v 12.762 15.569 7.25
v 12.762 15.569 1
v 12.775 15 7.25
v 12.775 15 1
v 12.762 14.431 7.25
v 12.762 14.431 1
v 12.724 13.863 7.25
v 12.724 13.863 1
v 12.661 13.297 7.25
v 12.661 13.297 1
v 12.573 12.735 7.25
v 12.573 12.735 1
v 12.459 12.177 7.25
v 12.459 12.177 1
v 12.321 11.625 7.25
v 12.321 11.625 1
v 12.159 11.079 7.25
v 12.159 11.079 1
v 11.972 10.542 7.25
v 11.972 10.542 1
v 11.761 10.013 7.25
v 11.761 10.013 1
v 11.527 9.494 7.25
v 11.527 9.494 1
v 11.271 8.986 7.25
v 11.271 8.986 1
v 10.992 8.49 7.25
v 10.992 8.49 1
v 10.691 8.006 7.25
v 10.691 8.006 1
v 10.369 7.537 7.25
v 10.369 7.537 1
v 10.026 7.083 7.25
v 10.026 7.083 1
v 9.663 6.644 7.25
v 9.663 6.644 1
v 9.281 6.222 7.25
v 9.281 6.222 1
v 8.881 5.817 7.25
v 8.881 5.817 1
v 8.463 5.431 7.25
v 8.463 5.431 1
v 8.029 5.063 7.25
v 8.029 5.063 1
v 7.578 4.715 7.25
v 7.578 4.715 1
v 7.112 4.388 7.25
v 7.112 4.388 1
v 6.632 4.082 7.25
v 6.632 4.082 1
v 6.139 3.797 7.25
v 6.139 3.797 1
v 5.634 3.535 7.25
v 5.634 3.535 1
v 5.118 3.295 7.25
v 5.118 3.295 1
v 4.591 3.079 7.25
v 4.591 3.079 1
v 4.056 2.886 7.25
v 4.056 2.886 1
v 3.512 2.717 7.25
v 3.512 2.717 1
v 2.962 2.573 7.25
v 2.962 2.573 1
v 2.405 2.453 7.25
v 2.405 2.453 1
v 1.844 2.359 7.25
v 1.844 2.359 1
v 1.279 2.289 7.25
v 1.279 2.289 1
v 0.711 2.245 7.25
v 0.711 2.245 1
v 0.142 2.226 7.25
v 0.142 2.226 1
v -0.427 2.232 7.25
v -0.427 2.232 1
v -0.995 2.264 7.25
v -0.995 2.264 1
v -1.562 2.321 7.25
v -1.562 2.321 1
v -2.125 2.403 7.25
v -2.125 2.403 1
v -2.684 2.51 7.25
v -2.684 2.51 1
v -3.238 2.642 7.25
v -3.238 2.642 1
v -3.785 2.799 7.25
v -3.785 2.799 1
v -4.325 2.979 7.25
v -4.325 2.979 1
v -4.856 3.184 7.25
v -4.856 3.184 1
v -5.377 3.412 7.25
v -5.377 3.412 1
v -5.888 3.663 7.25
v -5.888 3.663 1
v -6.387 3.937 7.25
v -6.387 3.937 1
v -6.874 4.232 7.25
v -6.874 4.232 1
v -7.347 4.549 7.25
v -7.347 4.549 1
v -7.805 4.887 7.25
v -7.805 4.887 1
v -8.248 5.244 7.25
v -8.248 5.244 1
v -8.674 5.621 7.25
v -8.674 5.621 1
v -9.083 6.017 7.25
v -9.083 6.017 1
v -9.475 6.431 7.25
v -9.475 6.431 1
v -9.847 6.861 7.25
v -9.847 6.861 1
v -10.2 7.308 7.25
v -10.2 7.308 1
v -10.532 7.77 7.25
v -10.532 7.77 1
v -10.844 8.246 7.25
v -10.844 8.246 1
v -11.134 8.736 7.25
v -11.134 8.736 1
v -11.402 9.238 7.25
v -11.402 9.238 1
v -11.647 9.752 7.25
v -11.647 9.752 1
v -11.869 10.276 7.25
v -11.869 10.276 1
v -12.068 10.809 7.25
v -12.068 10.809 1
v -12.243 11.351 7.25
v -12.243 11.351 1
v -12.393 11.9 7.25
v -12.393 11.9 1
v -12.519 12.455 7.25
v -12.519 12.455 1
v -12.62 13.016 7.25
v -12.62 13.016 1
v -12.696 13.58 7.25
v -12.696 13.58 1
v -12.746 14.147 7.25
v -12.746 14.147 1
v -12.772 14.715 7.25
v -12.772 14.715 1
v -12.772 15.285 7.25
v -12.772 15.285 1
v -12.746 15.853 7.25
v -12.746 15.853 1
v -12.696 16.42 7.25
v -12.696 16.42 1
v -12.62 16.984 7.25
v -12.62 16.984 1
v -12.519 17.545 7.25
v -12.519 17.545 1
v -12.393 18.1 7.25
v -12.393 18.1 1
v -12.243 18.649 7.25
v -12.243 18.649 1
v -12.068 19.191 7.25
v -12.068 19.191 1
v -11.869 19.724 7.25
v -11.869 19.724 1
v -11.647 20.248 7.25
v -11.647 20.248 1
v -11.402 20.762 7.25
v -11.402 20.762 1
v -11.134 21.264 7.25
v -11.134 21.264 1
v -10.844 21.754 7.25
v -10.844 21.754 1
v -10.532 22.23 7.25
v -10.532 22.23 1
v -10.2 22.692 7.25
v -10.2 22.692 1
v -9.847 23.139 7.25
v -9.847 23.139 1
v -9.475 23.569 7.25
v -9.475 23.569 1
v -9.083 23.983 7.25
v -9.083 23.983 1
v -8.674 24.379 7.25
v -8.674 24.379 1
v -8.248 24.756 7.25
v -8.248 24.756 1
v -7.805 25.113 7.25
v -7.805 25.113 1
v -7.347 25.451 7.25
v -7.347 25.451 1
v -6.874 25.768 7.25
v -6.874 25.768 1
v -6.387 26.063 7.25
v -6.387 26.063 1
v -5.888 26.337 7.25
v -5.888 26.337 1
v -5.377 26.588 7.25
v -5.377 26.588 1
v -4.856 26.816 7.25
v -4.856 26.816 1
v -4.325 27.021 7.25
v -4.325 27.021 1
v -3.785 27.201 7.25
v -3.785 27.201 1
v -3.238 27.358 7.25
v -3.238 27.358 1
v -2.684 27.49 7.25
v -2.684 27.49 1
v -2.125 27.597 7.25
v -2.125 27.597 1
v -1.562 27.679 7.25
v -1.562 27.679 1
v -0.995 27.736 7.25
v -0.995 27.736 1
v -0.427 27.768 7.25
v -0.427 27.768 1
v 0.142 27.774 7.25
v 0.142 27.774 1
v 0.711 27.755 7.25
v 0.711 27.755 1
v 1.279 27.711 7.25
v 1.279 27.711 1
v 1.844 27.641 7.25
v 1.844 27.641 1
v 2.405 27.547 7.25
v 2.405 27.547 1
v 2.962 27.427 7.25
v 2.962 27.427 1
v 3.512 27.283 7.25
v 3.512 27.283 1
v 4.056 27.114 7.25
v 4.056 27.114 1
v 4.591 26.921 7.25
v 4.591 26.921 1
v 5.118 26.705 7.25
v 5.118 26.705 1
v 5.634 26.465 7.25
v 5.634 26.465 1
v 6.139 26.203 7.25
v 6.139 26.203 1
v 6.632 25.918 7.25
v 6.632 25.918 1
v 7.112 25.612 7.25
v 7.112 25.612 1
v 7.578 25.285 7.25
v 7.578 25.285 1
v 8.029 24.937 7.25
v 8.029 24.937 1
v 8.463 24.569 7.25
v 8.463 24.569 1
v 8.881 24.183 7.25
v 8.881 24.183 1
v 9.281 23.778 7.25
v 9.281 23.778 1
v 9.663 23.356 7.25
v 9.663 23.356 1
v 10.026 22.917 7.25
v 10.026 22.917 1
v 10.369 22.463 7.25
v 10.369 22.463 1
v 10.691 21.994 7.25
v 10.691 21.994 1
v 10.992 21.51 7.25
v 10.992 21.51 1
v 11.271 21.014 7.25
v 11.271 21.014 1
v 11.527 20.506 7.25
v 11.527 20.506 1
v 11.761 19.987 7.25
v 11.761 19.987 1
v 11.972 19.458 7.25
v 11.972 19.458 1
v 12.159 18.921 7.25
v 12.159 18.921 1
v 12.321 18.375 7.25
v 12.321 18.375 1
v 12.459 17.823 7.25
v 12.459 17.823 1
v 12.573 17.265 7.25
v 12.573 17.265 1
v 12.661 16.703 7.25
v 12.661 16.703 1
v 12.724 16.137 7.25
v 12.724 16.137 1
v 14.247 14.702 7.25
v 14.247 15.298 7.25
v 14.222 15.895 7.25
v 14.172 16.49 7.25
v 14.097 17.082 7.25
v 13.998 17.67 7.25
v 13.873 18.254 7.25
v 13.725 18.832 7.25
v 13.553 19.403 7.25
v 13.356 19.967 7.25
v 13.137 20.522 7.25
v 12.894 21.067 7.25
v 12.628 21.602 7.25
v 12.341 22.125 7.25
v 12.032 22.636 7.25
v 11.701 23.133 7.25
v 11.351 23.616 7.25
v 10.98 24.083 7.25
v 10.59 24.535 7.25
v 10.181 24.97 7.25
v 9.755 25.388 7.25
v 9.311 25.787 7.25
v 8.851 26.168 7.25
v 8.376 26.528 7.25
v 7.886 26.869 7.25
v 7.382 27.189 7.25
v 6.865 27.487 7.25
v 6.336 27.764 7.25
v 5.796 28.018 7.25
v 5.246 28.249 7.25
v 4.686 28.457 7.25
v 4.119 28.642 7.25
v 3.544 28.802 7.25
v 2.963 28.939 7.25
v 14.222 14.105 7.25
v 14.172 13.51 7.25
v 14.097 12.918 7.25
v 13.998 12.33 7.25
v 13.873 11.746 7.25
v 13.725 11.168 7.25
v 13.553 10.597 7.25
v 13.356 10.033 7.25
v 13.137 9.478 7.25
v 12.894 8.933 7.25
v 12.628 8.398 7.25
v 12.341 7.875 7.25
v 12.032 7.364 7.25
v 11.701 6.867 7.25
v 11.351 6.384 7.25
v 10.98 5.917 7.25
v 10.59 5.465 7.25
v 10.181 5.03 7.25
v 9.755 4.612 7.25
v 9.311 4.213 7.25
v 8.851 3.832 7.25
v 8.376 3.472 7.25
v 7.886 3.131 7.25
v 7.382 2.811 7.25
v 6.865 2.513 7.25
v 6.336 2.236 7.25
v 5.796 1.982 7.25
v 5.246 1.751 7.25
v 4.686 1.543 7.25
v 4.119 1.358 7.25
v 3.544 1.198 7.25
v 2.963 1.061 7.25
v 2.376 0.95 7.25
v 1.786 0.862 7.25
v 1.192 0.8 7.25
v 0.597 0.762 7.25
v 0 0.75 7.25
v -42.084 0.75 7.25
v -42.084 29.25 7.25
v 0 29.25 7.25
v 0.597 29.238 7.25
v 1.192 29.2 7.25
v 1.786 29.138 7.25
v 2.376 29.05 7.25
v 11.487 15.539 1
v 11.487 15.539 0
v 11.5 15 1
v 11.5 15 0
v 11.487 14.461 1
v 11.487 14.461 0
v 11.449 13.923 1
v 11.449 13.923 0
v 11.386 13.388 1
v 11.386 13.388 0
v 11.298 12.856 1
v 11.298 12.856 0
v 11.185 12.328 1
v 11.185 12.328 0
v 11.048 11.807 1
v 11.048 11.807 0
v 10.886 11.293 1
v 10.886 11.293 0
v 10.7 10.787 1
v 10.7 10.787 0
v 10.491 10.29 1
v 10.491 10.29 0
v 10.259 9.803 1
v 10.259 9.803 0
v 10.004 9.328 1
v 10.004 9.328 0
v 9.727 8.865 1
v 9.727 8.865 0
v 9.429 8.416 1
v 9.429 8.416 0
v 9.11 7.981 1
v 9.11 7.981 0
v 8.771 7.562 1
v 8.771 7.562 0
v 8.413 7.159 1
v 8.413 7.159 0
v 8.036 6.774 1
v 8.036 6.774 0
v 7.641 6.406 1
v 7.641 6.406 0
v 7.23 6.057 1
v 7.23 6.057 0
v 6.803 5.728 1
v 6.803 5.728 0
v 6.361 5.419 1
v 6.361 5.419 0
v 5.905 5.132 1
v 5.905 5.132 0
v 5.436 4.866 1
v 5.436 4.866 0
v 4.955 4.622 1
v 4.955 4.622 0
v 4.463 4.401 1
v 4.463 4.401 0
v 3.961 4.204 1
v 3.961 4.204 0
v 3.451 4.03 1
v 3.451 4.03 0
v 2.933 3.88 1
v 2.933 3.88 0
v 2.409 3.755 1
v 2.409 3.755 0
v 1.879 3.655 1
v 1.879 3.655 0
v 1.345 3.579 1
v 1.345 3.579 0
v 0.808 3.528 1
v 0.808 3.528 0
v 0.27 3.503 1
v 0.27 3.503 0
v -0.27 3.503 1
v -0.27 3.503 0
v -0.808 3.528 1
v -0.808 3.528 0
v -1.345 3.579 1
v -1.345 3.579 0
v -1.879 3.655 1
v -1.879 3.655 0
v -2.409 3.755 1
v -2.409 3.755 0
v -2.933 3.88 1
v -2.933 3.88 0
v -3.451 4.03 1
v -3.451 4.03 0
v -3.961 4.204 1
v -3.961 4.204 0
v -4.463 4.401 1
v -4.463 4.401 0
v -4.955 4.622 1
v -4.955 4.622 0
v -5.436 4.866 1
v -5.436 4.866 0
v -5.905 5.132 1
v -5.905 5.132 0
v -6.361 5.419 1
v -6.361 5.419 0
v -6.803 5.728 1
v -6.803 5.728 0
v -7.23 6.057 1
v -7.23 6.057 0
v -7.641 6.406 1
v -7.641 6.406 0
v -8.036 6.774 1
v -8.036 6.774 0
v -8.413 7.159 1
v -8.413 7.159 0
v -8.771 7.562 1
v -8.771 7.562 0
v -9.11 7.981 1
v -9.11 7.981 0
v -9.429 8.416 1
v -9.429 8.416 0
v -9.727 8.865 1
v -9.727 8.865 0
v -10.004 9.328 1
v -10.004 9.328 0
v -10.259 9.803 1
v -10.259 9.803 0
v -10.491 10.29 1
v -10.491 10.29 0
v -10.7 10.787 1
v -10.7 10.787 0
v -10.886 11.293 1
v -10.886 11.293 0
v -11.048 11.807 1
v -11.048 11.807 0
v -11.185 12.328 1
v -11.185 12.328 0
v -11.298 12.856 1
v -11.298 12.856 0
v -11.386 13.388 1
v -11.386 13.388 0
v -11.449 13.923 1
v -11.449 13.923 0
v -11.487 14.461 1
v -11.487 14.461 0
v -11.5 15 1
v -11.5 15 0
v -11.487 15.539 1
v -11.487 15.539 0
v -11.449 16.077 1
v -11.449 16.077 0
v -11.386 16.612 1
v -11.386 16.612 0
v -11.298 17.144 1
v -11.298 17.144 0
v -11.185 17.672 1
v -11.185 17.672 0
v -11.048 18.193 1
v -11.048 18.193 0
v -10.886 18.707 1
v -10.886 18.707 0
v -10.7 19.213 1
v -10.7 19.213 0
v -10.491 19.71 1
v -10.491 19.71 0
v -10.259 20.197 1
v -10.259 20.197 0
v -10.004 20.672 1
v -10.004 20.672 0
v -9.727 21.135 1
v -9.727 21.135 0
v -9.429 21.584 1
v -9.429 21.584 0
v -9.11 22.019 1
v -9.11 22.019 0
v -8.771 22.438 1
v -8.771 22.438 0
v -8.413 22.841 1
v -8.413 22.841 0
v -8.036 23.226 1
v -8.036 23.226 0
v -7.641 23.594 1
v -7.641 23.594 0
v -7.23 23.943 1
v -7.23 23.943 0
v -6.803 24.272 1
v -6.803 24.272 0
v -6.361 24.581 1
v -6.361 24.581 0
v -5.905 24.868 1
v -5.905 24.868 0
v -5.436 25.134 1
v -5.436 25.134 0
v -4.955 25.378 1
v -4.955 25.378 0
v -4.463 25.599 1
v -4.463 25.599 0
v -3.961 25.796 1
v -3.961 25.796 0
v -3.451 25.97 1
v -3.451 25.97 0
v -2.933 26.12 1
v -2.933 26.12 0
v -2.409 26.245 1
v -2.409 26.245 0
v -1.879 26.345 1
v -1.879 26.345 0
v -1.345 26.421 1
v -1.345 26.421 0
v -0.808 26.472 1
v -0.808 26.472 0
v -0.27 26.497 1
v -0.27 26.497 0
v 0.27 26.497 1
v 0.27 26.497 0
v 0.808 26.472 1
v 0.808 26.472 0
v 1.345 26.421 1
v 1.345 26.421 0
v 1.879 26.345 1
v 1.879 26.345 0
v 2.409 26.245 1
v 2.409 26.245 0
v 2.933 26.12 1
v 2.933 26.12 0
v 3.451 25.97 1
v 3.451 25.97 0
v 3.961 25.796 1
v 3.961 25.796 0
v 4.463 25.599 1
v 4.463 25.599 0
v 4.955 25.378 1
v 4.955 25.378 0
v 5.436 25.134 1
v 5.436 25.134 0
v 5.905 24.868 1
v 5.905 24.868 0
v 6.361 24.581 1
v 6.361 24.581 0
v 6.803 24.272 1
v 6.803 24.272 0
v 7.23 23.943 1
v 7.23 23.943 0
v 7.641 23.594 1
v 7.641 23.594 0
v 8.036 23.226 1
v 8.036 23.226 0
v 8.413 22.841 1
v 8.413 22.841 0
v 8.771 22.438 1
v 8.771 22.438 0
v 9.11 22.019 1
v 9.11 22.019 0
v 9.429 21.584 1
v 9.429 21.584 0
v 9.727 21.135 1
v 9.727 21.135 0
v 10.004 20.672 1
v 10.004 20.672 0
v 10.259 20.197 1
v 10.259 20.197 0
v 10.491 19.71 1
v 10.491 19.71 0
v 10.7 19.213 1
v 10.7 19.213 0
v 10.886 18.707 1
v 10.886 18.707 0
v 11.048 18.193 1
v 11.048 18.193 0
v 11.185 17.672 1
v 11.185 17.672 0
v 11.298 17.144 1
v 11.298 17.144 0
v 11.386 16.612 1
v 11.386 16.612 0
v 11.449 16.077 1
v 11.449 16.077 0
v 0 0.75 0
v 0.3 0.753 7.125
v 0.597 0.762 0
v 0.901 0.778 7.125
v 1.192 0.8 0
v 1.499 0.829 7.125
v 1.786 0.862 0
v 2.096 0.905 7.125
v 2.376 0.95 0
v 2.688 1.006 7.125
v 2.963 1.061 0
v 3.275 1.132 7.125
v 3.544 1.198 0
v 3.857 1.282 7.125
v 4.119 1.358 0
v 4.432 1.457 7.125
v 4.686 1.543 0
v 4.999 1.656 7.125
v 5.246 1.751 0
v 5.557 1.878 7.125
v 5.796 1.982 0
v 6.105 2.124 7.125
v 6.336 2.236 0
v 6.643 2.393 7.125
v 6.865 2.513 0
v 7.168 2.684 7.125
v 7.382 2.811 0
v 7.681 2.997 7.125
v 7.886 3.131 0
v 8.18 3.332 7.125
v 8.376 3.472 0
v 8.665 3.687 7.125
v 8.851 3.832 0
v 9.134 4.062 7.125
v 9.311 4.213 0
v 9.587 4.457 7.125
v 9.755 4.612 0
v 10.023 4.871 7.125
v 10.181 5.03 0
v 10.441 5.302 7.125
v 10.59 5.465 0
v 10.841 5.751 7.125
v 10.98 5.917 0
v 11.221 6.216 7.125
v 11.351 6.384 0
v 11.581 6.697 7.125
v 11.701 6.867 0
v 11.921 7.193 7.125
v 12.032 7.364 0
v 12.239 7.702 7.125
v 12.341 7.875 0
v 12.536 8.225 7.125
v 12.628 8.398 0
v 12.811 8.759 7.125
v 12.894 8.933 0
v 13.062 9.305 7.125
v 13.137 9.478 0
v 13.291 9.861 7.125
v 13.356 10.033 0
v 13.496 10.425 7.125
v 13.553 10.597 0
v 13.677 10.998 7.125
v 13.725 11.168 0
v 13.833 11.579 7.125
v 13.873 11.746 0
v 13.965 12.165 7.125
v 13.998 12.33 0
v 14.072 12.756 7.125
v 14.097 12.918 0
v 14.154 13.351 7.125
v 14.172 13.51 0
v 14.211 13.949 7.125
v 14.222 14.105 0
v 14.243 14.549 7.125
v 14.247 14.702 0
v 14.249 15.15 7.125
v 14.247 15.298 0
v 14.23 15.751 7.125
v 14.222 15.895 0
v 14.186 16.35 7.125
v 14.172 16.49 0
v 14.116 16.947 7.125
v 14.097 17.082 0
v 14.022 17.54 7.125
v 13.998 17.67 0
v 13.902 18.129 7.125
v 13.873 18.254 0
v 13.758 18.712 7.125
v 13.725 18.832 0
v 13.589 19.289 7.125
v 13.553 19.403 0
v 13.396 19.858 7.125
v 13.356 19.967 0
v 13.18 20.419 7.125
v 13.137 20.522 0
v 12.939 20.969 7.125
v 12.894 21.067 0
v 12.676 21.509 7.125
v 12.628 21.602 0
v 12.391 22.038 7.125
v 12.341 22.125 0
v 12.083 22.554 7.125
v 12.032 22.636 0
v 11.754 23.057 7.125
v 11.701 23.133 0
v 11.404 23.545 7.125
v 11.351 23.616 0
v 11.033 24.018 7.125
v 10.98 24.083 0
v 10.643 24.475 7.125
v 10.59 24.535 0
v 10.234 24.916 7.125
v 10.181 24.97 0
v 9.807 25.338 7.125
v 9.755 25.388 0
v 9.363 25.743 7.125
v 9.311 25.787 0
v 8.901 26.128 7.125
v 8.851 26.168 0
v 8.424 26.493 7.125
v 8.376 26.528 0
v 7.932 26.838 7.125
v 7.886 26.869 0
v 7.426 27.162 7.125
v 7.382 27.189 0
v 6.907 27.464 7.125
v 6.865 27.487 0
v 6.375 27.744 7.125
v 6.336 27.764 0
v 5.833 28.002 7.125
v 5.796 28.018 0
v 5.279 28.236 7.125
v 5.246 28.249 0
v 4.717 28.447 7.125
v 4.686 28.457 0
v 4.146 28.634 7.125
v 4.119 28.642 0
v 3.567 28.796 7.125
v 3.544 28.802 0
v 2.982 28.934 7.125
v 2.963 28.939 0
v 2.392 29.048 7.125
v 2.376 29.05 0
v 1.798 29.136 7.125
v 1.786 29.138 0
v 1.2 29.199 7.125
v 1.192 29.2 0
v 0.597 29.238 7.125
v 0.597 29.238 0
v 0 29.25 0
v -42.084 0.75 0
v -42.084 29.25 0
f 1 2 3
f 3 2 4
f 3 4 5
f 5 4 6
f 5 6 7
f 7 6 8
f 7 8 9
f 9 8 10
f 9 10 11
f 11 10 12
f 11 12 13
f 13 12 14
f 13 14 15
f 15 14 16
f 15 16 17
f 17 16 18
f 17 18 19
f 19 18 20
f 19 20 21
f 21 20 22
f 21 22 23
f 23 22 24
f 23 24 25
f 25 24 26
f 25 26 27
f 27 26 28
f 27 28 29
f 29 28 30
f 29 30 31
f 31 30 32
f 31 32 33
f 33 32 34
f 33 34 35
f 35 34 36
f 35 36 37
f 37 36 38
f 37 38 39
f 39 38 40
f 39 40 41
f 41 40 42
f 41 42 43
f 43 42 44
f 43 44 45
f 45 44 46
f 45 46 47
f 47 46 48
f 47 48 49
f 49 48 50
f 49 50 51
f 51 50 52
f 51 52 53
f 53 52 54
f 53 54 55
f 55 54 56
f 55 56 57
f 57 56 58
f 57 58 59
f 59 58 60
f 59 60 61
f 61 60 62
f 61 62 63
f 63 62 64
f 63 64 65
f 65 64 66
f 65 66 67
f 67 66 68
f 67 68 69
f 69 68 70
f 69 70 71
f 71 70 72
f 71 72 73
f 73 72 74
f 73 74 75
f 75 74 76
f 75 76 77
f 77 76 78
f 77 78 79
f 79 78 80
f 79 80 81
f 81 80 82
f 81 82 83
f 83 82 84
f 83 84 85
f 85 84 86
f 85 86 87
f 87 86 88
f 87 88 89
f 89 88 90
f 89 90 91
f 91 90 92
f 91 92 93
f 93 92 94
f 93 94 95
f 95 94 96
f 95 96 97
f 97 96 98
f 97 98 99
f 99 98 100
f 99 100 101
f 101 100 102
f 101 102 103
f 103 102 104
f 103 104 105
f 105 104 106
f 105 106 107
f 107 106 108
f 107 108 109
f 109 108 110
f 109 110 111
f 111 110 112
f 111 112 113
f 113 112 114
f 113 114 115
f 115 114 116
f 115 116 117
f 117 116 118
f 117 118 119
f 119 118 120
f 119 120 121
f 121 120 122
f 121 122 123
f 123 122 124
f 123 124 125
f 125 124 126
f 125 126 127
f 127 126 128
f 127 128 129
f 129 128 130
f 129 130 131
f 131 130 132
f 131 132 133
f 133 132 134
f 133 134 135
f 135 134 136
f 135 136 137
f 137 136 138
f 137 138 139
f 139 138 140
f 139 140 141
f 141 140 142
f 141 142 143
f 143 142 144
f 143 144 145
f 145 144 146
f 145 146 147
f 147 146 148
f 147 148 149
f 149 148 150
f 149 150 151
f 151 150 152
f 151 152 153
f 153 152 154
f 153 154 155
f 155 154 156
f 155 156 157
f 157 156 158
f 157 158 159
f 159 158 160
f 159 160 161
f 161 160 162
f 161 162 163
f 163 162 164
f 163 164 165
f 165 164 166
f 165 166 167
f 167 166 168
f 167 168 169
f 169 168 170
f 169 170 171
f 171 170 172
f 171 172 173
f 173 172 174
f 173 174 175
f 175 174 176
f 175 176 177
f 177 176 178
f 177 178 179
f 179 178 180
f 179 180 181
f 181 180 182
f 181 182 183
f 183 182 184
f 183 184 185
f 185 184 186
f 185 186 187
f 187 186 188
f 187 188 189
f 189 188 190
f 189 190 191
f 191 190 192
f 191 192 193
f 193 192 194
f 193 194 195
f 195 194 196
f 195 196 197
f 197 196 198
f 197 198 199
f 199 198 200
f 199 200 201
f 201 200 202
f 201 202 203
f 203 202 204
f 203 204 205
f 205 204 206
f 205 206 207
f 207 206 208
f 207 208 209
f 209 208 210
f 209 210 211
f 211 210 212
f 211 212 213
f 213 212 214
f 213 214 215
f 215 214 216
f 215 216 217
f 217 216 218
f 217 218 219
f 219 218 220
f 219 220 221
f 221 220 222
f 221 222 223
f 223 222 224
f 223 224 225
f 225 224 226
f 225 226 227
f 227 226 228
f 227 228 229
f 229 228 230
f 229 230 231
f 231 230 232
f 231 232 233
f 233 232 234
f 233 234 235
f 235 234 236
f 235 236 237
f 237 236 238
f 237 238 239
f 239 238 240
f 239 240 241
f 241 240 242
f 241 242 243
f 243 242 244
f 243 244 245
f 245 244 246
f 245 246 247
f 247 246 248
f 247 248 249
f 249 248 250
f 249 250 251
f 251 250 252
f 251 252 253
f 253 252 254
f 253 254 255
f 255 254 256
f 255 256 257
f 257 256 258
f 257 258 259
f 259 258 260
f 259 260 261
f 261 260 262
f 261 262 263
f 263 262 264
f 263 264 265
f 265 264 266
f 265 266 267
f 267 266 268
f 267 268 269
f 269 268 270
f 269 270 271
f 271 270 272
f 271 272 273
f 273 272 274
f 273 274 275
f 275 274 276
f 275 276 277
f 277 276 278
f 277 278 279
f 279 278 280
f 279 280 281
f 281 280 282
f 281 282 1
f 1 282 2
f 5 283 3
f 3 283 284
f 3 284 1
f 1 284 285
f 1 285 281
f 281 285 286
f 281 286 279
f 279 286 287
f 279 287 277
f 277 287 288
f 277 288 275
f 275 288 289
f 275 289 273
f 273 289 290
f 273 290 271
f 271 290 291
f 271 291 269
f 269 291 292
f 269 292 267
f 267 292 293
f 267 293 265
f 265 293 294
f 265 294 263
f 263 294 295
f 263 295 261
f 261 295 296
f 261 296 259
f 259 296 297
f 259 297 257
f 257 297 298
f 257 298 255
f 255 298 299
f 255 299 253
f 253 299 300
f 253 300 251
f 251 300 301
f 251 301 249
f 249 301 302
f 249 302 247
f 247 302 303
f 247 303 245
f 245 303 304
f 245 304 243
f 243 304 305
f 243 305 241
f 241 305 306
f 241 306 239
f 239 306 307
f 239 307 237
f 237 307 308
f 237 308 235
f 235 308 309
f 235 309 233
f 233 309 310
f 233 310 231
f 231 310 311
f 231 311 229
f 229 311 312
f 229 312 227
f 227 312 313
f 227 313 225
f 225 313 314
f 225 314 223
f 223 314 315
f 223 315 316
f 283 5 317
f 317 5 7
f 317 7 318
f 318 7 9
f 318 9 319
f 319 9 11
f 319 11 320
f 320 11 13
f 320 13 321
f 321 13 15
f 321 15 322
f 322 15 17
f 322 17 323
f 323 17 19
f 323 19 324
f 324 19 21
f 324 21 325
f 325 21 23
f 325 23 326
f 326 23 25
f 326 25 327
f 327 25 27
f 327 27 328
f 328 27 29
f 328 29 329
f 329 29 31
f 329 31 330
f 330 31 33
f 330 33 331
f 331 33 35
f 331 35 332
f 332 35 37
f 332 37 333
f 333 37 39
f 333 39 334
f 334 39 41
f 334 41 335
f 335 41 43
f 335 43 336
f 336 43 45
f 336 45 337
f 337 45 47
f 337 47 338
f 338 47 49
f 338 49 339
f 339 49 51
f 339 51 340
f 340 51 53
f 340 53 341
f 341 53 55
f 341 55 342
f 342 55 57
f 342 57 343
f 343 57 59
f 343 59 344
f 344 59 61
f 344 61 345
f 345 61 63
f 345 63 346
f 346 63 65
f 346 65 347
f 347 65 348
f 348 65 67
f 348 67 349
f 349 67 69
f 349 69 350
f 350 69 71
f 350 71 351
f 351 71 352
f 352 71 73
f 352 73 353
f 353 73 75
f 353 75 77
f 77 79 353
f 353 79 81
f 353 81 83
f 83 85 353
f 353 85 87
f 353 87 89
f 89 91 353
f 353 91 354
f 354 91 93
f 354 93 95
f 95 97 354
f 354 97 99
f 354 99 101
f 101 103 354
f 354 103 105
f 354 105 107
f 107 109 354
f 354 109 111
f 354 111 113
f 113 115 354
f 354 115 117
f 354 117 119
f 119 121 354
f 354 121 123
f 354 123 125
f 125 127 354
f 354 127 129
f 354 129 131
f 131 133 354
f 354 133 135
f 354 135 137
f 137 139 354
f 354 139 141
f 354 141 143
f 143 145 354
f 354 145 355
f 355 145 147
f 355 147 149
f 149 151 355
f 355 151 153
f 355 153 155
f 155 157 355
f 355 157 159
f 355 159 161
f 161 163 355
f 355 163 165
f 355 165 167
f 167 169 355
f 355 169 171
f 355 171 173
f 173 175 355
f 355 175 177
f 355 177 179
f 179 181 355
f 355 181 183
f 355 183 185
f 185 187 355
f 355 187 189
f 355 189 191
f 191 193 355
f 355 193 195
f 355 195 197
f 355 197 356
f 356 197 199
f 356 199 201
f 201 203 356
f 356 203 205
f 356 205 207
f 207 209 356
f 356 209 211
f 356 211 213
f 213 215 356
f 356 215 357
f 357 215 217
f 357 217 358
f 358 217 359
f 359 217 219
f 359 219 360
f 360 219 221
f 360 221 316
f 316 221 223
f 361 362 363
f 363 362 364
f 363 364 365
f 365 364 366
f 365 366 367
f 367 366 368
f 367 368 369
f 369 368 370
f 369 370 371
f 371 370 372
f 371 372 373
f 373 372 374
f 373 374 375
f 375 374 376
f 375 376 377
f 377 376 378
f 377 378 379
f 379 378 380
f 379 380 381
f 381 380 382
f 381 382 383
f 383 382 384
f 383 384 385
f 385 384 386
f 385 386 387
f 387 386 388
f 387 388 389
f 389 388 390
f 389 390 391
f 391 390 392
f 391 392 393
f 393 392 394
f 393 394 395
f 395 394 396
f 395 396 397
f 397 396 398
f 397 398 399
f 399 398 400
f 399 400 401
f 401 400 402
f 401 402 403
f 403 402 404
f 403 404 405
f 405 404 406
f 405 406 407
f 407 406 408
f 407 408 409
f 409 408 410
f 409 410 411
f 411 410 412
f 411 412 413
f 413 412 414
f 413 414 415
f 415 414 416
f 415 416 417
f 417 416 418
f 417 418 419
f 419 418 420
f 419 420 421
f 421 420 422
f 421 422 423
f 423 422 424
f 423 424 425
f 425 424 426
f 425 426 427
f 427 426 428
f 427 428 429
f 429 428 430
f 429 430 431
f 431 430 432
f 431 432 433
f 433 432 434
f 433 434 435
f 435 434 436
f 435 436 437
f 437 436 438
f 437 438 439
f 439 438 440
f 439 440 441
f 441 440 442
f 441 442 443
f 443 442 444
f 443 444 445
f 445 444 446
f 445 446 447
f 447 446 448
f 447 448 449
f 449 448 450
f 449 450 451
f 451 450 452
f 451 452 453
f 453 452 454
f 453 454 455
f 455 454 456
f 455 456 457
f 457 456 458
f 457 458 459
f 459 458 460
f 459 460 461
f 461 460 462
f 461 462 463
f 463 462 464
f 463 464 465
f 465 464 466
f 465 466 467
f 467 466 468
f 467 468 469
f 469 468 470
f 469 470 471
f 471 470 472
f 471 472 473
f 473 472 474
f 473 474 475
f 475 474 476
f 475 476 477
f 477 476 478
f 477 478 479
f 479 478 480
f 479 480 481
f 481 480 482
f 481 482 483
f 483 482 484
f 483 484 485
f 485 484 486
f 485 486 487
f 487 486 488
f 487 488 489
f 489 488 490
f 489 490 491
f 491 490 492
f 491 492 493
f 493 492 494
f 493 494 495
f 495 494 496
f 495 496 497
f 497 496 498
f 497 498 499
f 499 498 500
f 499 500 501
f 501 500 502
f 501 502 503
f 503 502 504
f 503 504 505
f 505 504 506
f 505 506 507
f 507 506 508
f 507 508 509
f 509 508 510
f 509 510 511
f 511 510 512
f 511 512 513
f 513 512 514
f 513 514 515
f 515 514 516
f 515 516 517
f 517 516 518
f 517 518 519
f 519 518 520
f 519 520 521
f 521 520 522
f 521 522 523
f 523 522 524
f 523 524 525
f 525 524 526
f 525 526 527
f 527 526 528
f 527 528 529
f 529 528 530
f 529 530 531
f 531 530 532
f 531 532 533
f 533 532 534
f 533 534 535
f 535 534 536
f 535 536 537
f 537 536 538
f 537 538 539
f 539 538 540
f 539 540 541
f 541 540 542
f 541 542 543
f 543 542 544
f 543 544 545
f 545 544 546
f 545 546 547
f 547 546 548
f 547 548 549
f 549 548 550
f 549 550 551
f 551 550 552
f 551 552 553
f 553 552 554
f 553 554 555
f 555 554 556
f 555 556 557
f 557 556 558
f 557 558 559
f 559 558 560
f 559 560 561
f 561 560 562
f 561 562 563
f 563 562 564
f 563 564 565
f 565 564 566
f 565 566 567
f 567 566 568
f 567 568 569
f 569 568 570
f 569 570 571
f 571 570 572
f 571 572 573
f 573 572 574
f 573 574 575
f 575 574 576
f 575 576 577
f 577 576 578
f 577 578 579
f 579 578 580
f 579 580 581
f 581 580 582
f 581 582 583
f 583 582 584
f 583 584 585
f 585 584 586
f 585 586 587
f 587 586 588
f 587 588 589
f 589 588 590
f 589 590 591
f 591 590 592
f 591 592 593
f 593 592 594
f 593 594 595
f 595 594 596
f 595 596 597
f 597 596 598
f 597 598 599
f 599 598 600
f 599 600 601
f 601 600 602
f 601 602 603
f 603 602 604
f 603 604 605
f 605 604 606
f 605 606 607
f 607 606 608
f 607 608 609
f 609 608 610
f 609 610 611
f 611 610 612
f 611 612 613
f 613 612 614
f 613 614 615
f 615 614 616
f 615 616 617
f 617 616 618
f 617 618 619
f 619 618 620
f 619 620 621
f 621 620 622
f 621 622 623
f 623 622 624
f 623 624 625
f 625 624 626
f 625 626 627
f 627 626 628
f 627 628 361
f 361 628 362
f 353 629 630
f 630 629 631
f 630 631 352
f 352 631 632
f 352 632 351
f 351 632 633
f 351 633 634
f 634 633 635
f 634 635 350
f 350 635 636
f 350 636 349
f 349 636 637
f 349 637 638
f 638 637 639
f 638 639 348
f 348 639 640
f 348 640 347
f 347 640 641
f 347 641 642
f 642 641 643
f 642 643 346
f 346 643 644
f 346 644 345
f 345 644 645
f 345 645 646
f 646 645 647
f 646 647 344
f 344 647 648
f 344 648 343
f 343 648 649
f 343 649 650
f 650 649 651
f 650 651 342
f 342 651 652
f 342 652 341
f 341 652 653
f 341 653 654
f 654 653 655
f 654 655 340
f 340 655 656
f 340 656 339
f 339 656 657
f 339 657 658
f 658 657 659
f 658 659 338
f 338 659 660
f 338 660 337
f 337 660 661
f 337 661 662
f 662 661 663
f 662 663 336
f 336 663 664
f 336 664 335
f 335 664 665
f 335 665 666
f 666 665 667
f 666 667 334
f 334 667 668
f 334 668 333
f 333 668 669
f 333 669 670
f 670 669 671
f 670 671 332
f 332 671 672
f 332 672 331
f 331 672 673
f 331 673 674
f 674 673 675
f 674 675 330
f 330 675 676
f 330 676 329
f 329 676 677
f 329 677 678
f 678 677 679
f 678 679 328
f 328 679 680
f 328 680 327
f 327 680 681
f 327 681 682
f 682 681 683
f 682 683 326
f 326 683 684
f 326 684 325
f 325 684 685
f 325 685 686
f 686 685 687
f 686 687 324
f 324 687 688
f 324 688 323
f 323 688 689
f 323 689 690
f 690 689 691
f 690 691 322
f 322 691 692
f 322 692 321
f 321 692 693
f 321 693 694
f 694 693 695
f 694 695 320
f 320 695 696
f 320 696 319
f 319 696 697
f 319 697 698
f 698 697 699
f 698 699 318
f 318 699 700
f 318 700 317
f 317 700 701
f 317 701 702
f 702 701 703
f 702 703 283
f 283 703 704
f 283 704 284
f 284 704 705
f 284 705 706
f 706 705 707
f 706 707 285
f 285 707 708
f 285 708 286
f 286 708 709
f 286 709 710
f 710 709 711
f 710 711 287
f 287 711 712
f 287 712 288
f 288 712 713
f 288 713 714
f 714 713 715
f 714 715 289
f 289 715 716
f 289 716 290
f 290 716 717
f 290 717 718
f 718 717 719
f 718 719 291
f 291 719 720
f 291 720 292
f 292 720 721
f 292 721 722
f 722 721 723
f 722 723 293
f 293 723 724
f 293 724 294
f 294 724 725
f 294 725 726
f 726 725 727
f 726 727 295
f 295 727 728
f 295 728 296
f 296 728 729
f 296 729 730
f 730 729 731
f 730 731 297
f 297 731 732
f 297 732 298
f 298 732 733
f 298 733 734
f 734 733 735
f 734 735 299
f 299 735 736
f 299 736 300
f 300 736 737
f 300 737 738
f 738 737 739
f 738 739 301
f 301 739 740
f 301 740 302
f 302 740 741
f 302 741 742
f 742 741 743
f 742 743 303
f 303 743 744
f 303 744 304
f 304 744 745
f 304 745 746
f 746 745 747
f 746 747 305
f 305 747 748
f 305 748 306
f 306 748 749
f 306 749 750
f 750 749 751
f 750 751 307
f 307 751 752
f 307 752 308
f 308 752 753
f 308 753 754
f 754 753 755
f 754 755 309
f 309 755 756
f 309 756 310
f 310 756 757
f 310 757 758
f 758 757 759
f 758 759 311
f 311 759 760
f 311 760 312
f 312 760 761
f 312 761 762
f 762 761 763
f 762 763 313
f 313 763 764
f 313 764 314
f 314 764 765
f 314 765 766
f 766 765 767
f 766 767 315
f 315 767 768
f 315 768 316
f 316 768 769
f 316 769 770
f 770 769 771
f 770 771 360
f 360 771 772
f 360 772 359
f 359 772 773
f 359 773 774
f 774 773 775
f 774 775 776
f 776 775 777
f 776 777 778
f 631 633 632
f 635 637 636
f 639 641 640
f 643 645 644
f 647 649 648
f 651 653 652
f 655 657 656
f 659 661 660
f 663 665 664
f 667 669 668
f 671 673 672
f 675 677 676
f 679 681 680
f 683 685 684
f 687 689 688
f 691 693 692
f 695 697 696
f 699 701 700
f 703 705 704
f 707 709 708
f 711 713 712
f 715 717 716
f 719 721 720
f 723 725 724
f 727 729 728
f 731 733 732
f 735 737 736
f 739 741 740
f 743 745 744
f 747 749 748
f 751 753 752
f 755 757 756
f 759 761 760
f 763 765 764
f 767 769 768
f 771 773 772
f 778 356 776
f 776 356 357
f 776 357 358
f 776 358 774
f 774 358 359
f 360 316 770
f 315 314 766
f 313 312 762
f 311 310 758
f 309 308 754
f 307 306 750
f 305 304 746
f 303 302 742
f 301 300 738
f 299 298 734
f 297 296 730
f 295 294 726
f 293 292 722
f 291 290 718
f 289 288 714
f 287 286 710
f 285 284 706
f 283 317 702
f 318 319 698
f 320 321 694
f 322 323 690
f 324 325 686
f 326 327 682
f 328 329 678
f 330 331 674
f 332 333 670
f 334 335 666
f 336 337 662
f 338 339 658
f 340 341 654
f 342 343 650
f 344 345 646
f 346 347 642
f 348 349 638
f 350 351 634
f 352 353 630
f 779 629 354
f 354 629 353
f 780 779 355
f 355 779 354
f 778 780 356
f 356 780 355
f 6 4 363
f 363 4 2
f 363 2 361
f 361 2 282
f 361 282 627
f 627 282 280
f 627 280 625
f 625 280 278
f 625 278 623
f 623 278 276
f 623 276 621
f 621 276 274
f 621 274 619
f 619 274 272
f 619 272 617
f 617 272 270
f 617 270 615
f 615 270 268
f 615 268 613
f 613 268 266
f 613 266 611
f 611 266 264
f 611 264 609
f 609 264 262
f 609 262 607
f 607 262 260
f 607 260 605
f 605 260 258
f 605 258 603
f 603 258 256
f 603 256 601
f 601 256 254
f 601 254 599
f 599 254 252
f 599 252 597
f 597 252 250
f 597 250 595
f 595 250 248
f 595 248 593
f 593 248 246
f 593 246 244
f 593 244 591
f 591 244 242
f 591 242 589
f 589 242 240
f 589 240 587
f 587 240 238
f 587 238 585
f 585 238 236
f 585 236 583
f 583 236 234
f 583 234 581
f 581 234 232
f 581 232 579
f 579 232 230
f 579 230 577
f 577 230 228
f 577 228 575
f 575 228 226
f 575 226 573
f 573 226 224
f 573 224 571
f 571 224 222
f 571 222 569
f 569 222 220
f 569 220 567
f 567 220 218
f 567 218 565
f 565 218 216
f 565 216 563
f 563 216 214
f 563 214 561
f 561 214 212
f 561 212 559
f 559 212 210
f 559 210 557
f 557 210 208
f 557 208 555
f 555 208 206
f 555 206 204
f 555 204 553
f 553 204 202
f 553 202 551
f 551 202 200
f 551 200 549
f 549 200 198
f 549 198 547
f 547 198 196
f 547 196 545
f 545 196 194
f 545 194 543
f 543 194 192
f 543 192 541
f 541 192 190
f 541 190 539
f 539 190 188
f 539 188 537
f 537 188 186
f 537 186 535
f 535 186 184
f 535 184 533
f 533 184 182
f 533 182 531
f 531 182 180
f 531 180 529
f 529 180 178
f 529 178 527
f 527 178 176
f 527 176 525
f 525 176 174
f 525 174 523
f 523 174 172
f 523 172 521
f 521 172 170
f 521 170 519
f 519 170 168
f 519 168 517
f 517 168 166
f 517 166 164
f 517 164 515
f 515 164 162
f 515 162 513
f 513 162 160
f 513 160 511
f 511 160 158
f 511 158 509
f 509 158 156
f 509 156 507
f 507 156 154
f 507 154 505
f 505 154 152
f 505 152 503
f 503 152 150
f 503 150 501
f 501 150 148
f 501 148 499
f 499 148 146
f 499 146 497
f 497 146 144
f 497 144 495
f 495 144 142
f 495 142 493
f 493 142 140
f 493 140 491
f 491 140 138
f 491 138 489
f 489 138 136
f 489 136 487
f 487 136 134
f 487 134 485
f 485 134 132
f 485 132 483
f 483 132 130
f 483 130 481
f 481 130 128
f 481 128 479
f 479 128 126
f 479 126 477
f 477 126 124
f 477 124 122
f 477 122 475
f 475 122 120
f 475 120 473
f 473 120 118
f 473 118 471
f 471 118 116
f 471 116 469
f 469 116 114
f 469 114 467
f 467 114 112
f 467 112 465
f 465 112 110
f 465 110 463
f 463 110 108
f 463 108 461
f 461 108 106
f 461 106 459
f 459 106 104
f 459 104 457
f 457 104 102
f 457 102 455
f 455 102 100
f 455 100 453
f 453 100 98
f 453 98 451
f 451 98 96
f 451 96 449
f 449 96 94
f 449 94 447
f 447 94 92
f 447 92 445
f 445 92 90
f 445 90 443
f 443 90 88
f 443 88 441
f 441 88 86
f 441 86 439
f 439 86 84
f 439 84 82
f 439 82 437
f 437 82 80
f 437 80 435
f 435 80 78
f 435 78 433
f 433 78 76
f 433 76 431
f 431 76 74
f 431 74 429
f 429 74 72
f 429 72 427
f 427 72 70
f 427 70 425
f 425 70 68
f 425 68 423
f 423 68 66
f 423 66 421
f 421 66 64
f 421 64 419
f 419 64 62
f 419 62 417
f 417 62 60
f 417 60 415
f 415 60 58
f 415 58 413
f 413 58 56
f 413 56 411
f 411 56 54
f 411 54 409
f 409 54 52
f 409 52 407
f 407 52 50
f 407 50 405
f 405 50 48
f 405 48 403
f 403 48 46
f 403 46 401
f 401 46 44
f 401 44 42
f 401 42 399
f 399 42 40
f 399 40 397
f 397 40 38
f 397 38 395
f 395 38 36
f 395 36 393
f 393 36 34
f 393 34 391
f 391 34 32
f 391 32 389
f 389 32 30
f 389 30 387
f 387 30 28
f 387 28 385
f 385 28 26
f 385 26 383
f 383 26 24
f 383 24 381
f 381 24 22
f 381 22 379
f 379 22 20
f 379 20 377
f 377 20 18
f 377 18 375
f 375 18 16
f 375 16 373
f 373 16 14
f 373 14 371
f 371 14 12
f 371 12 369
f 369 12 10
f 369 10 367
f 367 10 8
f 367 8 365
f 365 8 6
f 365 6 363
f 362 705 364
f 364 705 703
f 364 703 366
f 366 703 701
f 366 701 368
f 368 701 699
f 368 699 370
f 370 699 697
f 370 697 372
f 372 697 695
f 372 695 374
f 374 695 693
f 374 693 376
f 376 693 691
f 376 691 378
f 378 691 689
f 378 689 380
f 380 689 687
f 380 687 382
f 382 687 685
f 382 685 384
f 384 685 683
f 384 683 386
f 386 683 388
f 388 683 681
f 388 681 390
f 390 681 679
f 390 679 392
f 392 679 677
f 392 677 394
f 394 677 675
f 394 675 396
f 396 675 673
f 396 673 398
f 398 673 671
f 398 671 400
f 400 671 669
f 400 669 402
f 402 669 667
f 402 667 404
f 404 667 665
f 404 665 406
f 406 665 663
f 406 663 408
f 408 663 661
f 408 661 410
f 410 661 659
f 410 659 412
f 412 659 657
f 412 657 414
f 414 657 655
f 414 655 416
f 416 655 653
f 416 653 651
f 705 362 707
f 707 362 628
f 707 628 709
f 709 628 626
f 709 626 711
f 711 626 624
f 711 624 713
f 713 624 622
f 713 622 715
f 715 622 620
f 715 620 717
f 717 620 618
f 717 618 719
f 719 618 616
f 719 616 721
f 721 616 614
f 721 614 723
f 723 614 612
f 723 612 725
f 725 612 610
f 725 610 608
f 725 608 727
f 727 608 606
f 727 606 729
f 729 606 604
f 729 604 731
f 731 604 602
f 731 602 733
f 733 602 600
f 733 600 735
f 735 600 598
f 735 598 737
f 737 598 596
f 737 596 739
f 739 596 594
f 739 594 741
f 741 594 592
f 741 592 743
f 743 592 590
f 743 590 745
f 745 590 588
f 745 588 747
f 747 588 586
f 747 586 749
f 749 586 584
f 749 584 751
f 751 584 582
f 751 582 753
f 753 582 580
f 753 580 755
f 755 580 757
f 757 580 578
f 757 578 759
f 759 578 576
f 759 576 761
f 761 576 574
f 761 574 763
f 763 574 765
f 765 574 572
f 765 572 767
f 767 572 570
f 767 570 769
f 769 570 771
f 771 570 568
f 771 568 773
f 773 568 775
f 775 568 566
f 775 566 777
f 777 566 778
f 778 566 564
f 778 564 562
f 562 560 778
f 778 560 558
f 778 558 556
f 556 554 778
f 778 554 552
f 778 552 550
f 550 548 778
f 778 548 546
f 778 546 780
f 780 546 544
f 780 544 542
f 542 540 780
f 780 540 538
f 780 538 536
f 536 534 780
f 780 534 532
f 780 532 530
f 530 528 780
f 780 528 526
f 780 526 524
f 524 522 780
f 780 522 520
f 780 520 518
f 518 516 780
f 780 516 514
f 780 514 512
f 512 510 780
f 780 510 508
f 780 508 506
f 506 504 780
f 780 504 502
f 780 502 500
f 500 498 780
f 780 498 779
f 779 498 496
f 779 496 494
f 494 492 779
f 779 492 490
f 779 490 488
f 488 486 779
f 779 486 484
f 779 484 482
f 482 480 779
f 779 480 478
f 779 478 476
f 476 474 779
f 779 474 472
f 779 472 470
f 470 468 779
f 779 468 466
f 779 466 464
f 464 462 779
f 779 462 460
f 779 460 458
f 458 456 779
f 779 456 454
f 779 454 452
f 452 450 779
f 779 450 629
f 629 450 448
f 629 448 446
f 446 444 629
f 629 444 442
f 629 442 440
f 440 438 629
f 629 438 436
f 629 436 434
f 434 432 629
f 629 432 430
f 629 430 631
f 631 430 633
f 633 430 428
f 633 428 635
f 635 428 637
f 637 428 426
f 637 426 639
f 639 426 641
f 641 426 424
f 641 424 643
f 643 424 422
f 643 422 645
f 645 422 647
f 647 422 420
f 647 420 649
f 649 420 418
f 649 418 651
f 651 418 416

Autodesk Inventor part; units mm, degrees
ref_plane "YZ Plane" through (0, 0, 0) normal (1, 0, 0) x (0, 1, 0)
ref_plane "XZ Plane" through (0, 0, 0) normal (0, 1, 0) x (-1, 0, 0)
ref_plane "XY Plane" through (0, 0, 0) normal (0, 0, 1) x (1, 0, 0)
ref_plane "Work Plane1" through (0, 0, 0) normal (0, 0, 1) x (1, 0, 0)
sketch "Sketch1" plane through (0, 0, 0) normal (0, 0, 1) x (1, 0, 0)
  arc A0 (-18.155, 30) -> (-18.155, 0) centre (0, 15) ccw construction
  line L0 (-18.155, 0) -> (-3.4871, 0) construction
  line L1 (-18.155, 30) -> (-3.4871, 30) construction
  circle A1 centre (0, 15) radius 15.4 construction
  arc A2 (-6.5238, 29.25) -> (-6.5238, 0.75) centre (0, 15) ccw construction
  line L2 (-6.5238, 0.75) -> (-17.7982, 0.75) construction
  arc A3 (-17.7982, 29.25) -> (-17.7982, 0.75) centre (0, 15) ccw construction
  line L3 (-17.7982, 29.25) -> (-6.5238, 29.25) construction
  circle A4 centre (0, 15) radius 12.775 construction
  line L4 (-6.5238, 29.25) -> (0, 29.25) construction
  line L5 (-6.5238, 0.75) -> (0, 0.75) construction
  arc A5 (0, 0.75) -> (0, 29.25) centre (0, 15) ccw construction
  line L6 (-42.0841, 29.25) -> (-42.0841, 0.75)
  line L7 (-42.0841, 0.75) -> (0, 0.75)
  line L8 (-42.0841, 29.25) -> (0, 29.25)
  circle A6 centre (0, 15) radius 11.5
  arc A7 (0, 0.75) -> (0, 29.25) centre (0, 15) ccw
  arc A8 (-3.4871, 0) -> (3.4871, 0) centre (0, 15) ccw projected
  line L9 (3.4871, 0) -> (18, 0) projected
  line L10 (18, 0) -> (18, 30) projected
  line L11 (3.4871, 30) -> (18, 30) projected
  arc A9 (3.4871, 30) -> (-3.4871, 30) centre (0, 15) ccw projected
  line L12 (-7.3927, 28.5095) -> (7.3927, 28.5095) projected
  arc A10 (7.3927, 1.4905) -> (7.3927, 28.5095) centre (0, 15) ccw projected
  line L13 (7.3927, 1.4905) -> (-7.3927, 1.4905) projected
  arc A11 (-7.3927, 28.5095) -> (-7.3927, 1.4905) centre (0, 15) ccw projected
  point P0 (0, 0)
  dimension "d0" = 0.75
  dimension "d1" = 25.55
  dimension "d2" = 23
extrude "Extrusion1" add sketch "Sketch1" along normal blind 1 contours L8 A7 L12 A11 L13 L7 L6 | A7 L13 A11 L12
sketch "Sketch2" plane through (0, 0, 1) normal (0, 0, 1) x (1, 0, 0)
  circle A0 centre (0, 15) radius 11.5 projected
  line L0 (0, 29.25) -> (-42.0841, 29.25) projected
  line L1 (-42.0841, 29.25) -> (-42.0841, 0.75) projected
  line L2 (-42.0841, 0.75) -> (0, 0.75) projected
  arc A1 (0, 0.75) -> (0, 29.25) centre (0, 15) ccw projected
  circle A2 centre (0, 15) radius 12.775
  point P0 (0, 0)
  dimension "d5" = 25.55
extrude "Extrusion2" add sketch "Sketch2" along normal blind 6.25 contours A1 L2 L1 L0
properties part number "10_Filteslide_25mm"
